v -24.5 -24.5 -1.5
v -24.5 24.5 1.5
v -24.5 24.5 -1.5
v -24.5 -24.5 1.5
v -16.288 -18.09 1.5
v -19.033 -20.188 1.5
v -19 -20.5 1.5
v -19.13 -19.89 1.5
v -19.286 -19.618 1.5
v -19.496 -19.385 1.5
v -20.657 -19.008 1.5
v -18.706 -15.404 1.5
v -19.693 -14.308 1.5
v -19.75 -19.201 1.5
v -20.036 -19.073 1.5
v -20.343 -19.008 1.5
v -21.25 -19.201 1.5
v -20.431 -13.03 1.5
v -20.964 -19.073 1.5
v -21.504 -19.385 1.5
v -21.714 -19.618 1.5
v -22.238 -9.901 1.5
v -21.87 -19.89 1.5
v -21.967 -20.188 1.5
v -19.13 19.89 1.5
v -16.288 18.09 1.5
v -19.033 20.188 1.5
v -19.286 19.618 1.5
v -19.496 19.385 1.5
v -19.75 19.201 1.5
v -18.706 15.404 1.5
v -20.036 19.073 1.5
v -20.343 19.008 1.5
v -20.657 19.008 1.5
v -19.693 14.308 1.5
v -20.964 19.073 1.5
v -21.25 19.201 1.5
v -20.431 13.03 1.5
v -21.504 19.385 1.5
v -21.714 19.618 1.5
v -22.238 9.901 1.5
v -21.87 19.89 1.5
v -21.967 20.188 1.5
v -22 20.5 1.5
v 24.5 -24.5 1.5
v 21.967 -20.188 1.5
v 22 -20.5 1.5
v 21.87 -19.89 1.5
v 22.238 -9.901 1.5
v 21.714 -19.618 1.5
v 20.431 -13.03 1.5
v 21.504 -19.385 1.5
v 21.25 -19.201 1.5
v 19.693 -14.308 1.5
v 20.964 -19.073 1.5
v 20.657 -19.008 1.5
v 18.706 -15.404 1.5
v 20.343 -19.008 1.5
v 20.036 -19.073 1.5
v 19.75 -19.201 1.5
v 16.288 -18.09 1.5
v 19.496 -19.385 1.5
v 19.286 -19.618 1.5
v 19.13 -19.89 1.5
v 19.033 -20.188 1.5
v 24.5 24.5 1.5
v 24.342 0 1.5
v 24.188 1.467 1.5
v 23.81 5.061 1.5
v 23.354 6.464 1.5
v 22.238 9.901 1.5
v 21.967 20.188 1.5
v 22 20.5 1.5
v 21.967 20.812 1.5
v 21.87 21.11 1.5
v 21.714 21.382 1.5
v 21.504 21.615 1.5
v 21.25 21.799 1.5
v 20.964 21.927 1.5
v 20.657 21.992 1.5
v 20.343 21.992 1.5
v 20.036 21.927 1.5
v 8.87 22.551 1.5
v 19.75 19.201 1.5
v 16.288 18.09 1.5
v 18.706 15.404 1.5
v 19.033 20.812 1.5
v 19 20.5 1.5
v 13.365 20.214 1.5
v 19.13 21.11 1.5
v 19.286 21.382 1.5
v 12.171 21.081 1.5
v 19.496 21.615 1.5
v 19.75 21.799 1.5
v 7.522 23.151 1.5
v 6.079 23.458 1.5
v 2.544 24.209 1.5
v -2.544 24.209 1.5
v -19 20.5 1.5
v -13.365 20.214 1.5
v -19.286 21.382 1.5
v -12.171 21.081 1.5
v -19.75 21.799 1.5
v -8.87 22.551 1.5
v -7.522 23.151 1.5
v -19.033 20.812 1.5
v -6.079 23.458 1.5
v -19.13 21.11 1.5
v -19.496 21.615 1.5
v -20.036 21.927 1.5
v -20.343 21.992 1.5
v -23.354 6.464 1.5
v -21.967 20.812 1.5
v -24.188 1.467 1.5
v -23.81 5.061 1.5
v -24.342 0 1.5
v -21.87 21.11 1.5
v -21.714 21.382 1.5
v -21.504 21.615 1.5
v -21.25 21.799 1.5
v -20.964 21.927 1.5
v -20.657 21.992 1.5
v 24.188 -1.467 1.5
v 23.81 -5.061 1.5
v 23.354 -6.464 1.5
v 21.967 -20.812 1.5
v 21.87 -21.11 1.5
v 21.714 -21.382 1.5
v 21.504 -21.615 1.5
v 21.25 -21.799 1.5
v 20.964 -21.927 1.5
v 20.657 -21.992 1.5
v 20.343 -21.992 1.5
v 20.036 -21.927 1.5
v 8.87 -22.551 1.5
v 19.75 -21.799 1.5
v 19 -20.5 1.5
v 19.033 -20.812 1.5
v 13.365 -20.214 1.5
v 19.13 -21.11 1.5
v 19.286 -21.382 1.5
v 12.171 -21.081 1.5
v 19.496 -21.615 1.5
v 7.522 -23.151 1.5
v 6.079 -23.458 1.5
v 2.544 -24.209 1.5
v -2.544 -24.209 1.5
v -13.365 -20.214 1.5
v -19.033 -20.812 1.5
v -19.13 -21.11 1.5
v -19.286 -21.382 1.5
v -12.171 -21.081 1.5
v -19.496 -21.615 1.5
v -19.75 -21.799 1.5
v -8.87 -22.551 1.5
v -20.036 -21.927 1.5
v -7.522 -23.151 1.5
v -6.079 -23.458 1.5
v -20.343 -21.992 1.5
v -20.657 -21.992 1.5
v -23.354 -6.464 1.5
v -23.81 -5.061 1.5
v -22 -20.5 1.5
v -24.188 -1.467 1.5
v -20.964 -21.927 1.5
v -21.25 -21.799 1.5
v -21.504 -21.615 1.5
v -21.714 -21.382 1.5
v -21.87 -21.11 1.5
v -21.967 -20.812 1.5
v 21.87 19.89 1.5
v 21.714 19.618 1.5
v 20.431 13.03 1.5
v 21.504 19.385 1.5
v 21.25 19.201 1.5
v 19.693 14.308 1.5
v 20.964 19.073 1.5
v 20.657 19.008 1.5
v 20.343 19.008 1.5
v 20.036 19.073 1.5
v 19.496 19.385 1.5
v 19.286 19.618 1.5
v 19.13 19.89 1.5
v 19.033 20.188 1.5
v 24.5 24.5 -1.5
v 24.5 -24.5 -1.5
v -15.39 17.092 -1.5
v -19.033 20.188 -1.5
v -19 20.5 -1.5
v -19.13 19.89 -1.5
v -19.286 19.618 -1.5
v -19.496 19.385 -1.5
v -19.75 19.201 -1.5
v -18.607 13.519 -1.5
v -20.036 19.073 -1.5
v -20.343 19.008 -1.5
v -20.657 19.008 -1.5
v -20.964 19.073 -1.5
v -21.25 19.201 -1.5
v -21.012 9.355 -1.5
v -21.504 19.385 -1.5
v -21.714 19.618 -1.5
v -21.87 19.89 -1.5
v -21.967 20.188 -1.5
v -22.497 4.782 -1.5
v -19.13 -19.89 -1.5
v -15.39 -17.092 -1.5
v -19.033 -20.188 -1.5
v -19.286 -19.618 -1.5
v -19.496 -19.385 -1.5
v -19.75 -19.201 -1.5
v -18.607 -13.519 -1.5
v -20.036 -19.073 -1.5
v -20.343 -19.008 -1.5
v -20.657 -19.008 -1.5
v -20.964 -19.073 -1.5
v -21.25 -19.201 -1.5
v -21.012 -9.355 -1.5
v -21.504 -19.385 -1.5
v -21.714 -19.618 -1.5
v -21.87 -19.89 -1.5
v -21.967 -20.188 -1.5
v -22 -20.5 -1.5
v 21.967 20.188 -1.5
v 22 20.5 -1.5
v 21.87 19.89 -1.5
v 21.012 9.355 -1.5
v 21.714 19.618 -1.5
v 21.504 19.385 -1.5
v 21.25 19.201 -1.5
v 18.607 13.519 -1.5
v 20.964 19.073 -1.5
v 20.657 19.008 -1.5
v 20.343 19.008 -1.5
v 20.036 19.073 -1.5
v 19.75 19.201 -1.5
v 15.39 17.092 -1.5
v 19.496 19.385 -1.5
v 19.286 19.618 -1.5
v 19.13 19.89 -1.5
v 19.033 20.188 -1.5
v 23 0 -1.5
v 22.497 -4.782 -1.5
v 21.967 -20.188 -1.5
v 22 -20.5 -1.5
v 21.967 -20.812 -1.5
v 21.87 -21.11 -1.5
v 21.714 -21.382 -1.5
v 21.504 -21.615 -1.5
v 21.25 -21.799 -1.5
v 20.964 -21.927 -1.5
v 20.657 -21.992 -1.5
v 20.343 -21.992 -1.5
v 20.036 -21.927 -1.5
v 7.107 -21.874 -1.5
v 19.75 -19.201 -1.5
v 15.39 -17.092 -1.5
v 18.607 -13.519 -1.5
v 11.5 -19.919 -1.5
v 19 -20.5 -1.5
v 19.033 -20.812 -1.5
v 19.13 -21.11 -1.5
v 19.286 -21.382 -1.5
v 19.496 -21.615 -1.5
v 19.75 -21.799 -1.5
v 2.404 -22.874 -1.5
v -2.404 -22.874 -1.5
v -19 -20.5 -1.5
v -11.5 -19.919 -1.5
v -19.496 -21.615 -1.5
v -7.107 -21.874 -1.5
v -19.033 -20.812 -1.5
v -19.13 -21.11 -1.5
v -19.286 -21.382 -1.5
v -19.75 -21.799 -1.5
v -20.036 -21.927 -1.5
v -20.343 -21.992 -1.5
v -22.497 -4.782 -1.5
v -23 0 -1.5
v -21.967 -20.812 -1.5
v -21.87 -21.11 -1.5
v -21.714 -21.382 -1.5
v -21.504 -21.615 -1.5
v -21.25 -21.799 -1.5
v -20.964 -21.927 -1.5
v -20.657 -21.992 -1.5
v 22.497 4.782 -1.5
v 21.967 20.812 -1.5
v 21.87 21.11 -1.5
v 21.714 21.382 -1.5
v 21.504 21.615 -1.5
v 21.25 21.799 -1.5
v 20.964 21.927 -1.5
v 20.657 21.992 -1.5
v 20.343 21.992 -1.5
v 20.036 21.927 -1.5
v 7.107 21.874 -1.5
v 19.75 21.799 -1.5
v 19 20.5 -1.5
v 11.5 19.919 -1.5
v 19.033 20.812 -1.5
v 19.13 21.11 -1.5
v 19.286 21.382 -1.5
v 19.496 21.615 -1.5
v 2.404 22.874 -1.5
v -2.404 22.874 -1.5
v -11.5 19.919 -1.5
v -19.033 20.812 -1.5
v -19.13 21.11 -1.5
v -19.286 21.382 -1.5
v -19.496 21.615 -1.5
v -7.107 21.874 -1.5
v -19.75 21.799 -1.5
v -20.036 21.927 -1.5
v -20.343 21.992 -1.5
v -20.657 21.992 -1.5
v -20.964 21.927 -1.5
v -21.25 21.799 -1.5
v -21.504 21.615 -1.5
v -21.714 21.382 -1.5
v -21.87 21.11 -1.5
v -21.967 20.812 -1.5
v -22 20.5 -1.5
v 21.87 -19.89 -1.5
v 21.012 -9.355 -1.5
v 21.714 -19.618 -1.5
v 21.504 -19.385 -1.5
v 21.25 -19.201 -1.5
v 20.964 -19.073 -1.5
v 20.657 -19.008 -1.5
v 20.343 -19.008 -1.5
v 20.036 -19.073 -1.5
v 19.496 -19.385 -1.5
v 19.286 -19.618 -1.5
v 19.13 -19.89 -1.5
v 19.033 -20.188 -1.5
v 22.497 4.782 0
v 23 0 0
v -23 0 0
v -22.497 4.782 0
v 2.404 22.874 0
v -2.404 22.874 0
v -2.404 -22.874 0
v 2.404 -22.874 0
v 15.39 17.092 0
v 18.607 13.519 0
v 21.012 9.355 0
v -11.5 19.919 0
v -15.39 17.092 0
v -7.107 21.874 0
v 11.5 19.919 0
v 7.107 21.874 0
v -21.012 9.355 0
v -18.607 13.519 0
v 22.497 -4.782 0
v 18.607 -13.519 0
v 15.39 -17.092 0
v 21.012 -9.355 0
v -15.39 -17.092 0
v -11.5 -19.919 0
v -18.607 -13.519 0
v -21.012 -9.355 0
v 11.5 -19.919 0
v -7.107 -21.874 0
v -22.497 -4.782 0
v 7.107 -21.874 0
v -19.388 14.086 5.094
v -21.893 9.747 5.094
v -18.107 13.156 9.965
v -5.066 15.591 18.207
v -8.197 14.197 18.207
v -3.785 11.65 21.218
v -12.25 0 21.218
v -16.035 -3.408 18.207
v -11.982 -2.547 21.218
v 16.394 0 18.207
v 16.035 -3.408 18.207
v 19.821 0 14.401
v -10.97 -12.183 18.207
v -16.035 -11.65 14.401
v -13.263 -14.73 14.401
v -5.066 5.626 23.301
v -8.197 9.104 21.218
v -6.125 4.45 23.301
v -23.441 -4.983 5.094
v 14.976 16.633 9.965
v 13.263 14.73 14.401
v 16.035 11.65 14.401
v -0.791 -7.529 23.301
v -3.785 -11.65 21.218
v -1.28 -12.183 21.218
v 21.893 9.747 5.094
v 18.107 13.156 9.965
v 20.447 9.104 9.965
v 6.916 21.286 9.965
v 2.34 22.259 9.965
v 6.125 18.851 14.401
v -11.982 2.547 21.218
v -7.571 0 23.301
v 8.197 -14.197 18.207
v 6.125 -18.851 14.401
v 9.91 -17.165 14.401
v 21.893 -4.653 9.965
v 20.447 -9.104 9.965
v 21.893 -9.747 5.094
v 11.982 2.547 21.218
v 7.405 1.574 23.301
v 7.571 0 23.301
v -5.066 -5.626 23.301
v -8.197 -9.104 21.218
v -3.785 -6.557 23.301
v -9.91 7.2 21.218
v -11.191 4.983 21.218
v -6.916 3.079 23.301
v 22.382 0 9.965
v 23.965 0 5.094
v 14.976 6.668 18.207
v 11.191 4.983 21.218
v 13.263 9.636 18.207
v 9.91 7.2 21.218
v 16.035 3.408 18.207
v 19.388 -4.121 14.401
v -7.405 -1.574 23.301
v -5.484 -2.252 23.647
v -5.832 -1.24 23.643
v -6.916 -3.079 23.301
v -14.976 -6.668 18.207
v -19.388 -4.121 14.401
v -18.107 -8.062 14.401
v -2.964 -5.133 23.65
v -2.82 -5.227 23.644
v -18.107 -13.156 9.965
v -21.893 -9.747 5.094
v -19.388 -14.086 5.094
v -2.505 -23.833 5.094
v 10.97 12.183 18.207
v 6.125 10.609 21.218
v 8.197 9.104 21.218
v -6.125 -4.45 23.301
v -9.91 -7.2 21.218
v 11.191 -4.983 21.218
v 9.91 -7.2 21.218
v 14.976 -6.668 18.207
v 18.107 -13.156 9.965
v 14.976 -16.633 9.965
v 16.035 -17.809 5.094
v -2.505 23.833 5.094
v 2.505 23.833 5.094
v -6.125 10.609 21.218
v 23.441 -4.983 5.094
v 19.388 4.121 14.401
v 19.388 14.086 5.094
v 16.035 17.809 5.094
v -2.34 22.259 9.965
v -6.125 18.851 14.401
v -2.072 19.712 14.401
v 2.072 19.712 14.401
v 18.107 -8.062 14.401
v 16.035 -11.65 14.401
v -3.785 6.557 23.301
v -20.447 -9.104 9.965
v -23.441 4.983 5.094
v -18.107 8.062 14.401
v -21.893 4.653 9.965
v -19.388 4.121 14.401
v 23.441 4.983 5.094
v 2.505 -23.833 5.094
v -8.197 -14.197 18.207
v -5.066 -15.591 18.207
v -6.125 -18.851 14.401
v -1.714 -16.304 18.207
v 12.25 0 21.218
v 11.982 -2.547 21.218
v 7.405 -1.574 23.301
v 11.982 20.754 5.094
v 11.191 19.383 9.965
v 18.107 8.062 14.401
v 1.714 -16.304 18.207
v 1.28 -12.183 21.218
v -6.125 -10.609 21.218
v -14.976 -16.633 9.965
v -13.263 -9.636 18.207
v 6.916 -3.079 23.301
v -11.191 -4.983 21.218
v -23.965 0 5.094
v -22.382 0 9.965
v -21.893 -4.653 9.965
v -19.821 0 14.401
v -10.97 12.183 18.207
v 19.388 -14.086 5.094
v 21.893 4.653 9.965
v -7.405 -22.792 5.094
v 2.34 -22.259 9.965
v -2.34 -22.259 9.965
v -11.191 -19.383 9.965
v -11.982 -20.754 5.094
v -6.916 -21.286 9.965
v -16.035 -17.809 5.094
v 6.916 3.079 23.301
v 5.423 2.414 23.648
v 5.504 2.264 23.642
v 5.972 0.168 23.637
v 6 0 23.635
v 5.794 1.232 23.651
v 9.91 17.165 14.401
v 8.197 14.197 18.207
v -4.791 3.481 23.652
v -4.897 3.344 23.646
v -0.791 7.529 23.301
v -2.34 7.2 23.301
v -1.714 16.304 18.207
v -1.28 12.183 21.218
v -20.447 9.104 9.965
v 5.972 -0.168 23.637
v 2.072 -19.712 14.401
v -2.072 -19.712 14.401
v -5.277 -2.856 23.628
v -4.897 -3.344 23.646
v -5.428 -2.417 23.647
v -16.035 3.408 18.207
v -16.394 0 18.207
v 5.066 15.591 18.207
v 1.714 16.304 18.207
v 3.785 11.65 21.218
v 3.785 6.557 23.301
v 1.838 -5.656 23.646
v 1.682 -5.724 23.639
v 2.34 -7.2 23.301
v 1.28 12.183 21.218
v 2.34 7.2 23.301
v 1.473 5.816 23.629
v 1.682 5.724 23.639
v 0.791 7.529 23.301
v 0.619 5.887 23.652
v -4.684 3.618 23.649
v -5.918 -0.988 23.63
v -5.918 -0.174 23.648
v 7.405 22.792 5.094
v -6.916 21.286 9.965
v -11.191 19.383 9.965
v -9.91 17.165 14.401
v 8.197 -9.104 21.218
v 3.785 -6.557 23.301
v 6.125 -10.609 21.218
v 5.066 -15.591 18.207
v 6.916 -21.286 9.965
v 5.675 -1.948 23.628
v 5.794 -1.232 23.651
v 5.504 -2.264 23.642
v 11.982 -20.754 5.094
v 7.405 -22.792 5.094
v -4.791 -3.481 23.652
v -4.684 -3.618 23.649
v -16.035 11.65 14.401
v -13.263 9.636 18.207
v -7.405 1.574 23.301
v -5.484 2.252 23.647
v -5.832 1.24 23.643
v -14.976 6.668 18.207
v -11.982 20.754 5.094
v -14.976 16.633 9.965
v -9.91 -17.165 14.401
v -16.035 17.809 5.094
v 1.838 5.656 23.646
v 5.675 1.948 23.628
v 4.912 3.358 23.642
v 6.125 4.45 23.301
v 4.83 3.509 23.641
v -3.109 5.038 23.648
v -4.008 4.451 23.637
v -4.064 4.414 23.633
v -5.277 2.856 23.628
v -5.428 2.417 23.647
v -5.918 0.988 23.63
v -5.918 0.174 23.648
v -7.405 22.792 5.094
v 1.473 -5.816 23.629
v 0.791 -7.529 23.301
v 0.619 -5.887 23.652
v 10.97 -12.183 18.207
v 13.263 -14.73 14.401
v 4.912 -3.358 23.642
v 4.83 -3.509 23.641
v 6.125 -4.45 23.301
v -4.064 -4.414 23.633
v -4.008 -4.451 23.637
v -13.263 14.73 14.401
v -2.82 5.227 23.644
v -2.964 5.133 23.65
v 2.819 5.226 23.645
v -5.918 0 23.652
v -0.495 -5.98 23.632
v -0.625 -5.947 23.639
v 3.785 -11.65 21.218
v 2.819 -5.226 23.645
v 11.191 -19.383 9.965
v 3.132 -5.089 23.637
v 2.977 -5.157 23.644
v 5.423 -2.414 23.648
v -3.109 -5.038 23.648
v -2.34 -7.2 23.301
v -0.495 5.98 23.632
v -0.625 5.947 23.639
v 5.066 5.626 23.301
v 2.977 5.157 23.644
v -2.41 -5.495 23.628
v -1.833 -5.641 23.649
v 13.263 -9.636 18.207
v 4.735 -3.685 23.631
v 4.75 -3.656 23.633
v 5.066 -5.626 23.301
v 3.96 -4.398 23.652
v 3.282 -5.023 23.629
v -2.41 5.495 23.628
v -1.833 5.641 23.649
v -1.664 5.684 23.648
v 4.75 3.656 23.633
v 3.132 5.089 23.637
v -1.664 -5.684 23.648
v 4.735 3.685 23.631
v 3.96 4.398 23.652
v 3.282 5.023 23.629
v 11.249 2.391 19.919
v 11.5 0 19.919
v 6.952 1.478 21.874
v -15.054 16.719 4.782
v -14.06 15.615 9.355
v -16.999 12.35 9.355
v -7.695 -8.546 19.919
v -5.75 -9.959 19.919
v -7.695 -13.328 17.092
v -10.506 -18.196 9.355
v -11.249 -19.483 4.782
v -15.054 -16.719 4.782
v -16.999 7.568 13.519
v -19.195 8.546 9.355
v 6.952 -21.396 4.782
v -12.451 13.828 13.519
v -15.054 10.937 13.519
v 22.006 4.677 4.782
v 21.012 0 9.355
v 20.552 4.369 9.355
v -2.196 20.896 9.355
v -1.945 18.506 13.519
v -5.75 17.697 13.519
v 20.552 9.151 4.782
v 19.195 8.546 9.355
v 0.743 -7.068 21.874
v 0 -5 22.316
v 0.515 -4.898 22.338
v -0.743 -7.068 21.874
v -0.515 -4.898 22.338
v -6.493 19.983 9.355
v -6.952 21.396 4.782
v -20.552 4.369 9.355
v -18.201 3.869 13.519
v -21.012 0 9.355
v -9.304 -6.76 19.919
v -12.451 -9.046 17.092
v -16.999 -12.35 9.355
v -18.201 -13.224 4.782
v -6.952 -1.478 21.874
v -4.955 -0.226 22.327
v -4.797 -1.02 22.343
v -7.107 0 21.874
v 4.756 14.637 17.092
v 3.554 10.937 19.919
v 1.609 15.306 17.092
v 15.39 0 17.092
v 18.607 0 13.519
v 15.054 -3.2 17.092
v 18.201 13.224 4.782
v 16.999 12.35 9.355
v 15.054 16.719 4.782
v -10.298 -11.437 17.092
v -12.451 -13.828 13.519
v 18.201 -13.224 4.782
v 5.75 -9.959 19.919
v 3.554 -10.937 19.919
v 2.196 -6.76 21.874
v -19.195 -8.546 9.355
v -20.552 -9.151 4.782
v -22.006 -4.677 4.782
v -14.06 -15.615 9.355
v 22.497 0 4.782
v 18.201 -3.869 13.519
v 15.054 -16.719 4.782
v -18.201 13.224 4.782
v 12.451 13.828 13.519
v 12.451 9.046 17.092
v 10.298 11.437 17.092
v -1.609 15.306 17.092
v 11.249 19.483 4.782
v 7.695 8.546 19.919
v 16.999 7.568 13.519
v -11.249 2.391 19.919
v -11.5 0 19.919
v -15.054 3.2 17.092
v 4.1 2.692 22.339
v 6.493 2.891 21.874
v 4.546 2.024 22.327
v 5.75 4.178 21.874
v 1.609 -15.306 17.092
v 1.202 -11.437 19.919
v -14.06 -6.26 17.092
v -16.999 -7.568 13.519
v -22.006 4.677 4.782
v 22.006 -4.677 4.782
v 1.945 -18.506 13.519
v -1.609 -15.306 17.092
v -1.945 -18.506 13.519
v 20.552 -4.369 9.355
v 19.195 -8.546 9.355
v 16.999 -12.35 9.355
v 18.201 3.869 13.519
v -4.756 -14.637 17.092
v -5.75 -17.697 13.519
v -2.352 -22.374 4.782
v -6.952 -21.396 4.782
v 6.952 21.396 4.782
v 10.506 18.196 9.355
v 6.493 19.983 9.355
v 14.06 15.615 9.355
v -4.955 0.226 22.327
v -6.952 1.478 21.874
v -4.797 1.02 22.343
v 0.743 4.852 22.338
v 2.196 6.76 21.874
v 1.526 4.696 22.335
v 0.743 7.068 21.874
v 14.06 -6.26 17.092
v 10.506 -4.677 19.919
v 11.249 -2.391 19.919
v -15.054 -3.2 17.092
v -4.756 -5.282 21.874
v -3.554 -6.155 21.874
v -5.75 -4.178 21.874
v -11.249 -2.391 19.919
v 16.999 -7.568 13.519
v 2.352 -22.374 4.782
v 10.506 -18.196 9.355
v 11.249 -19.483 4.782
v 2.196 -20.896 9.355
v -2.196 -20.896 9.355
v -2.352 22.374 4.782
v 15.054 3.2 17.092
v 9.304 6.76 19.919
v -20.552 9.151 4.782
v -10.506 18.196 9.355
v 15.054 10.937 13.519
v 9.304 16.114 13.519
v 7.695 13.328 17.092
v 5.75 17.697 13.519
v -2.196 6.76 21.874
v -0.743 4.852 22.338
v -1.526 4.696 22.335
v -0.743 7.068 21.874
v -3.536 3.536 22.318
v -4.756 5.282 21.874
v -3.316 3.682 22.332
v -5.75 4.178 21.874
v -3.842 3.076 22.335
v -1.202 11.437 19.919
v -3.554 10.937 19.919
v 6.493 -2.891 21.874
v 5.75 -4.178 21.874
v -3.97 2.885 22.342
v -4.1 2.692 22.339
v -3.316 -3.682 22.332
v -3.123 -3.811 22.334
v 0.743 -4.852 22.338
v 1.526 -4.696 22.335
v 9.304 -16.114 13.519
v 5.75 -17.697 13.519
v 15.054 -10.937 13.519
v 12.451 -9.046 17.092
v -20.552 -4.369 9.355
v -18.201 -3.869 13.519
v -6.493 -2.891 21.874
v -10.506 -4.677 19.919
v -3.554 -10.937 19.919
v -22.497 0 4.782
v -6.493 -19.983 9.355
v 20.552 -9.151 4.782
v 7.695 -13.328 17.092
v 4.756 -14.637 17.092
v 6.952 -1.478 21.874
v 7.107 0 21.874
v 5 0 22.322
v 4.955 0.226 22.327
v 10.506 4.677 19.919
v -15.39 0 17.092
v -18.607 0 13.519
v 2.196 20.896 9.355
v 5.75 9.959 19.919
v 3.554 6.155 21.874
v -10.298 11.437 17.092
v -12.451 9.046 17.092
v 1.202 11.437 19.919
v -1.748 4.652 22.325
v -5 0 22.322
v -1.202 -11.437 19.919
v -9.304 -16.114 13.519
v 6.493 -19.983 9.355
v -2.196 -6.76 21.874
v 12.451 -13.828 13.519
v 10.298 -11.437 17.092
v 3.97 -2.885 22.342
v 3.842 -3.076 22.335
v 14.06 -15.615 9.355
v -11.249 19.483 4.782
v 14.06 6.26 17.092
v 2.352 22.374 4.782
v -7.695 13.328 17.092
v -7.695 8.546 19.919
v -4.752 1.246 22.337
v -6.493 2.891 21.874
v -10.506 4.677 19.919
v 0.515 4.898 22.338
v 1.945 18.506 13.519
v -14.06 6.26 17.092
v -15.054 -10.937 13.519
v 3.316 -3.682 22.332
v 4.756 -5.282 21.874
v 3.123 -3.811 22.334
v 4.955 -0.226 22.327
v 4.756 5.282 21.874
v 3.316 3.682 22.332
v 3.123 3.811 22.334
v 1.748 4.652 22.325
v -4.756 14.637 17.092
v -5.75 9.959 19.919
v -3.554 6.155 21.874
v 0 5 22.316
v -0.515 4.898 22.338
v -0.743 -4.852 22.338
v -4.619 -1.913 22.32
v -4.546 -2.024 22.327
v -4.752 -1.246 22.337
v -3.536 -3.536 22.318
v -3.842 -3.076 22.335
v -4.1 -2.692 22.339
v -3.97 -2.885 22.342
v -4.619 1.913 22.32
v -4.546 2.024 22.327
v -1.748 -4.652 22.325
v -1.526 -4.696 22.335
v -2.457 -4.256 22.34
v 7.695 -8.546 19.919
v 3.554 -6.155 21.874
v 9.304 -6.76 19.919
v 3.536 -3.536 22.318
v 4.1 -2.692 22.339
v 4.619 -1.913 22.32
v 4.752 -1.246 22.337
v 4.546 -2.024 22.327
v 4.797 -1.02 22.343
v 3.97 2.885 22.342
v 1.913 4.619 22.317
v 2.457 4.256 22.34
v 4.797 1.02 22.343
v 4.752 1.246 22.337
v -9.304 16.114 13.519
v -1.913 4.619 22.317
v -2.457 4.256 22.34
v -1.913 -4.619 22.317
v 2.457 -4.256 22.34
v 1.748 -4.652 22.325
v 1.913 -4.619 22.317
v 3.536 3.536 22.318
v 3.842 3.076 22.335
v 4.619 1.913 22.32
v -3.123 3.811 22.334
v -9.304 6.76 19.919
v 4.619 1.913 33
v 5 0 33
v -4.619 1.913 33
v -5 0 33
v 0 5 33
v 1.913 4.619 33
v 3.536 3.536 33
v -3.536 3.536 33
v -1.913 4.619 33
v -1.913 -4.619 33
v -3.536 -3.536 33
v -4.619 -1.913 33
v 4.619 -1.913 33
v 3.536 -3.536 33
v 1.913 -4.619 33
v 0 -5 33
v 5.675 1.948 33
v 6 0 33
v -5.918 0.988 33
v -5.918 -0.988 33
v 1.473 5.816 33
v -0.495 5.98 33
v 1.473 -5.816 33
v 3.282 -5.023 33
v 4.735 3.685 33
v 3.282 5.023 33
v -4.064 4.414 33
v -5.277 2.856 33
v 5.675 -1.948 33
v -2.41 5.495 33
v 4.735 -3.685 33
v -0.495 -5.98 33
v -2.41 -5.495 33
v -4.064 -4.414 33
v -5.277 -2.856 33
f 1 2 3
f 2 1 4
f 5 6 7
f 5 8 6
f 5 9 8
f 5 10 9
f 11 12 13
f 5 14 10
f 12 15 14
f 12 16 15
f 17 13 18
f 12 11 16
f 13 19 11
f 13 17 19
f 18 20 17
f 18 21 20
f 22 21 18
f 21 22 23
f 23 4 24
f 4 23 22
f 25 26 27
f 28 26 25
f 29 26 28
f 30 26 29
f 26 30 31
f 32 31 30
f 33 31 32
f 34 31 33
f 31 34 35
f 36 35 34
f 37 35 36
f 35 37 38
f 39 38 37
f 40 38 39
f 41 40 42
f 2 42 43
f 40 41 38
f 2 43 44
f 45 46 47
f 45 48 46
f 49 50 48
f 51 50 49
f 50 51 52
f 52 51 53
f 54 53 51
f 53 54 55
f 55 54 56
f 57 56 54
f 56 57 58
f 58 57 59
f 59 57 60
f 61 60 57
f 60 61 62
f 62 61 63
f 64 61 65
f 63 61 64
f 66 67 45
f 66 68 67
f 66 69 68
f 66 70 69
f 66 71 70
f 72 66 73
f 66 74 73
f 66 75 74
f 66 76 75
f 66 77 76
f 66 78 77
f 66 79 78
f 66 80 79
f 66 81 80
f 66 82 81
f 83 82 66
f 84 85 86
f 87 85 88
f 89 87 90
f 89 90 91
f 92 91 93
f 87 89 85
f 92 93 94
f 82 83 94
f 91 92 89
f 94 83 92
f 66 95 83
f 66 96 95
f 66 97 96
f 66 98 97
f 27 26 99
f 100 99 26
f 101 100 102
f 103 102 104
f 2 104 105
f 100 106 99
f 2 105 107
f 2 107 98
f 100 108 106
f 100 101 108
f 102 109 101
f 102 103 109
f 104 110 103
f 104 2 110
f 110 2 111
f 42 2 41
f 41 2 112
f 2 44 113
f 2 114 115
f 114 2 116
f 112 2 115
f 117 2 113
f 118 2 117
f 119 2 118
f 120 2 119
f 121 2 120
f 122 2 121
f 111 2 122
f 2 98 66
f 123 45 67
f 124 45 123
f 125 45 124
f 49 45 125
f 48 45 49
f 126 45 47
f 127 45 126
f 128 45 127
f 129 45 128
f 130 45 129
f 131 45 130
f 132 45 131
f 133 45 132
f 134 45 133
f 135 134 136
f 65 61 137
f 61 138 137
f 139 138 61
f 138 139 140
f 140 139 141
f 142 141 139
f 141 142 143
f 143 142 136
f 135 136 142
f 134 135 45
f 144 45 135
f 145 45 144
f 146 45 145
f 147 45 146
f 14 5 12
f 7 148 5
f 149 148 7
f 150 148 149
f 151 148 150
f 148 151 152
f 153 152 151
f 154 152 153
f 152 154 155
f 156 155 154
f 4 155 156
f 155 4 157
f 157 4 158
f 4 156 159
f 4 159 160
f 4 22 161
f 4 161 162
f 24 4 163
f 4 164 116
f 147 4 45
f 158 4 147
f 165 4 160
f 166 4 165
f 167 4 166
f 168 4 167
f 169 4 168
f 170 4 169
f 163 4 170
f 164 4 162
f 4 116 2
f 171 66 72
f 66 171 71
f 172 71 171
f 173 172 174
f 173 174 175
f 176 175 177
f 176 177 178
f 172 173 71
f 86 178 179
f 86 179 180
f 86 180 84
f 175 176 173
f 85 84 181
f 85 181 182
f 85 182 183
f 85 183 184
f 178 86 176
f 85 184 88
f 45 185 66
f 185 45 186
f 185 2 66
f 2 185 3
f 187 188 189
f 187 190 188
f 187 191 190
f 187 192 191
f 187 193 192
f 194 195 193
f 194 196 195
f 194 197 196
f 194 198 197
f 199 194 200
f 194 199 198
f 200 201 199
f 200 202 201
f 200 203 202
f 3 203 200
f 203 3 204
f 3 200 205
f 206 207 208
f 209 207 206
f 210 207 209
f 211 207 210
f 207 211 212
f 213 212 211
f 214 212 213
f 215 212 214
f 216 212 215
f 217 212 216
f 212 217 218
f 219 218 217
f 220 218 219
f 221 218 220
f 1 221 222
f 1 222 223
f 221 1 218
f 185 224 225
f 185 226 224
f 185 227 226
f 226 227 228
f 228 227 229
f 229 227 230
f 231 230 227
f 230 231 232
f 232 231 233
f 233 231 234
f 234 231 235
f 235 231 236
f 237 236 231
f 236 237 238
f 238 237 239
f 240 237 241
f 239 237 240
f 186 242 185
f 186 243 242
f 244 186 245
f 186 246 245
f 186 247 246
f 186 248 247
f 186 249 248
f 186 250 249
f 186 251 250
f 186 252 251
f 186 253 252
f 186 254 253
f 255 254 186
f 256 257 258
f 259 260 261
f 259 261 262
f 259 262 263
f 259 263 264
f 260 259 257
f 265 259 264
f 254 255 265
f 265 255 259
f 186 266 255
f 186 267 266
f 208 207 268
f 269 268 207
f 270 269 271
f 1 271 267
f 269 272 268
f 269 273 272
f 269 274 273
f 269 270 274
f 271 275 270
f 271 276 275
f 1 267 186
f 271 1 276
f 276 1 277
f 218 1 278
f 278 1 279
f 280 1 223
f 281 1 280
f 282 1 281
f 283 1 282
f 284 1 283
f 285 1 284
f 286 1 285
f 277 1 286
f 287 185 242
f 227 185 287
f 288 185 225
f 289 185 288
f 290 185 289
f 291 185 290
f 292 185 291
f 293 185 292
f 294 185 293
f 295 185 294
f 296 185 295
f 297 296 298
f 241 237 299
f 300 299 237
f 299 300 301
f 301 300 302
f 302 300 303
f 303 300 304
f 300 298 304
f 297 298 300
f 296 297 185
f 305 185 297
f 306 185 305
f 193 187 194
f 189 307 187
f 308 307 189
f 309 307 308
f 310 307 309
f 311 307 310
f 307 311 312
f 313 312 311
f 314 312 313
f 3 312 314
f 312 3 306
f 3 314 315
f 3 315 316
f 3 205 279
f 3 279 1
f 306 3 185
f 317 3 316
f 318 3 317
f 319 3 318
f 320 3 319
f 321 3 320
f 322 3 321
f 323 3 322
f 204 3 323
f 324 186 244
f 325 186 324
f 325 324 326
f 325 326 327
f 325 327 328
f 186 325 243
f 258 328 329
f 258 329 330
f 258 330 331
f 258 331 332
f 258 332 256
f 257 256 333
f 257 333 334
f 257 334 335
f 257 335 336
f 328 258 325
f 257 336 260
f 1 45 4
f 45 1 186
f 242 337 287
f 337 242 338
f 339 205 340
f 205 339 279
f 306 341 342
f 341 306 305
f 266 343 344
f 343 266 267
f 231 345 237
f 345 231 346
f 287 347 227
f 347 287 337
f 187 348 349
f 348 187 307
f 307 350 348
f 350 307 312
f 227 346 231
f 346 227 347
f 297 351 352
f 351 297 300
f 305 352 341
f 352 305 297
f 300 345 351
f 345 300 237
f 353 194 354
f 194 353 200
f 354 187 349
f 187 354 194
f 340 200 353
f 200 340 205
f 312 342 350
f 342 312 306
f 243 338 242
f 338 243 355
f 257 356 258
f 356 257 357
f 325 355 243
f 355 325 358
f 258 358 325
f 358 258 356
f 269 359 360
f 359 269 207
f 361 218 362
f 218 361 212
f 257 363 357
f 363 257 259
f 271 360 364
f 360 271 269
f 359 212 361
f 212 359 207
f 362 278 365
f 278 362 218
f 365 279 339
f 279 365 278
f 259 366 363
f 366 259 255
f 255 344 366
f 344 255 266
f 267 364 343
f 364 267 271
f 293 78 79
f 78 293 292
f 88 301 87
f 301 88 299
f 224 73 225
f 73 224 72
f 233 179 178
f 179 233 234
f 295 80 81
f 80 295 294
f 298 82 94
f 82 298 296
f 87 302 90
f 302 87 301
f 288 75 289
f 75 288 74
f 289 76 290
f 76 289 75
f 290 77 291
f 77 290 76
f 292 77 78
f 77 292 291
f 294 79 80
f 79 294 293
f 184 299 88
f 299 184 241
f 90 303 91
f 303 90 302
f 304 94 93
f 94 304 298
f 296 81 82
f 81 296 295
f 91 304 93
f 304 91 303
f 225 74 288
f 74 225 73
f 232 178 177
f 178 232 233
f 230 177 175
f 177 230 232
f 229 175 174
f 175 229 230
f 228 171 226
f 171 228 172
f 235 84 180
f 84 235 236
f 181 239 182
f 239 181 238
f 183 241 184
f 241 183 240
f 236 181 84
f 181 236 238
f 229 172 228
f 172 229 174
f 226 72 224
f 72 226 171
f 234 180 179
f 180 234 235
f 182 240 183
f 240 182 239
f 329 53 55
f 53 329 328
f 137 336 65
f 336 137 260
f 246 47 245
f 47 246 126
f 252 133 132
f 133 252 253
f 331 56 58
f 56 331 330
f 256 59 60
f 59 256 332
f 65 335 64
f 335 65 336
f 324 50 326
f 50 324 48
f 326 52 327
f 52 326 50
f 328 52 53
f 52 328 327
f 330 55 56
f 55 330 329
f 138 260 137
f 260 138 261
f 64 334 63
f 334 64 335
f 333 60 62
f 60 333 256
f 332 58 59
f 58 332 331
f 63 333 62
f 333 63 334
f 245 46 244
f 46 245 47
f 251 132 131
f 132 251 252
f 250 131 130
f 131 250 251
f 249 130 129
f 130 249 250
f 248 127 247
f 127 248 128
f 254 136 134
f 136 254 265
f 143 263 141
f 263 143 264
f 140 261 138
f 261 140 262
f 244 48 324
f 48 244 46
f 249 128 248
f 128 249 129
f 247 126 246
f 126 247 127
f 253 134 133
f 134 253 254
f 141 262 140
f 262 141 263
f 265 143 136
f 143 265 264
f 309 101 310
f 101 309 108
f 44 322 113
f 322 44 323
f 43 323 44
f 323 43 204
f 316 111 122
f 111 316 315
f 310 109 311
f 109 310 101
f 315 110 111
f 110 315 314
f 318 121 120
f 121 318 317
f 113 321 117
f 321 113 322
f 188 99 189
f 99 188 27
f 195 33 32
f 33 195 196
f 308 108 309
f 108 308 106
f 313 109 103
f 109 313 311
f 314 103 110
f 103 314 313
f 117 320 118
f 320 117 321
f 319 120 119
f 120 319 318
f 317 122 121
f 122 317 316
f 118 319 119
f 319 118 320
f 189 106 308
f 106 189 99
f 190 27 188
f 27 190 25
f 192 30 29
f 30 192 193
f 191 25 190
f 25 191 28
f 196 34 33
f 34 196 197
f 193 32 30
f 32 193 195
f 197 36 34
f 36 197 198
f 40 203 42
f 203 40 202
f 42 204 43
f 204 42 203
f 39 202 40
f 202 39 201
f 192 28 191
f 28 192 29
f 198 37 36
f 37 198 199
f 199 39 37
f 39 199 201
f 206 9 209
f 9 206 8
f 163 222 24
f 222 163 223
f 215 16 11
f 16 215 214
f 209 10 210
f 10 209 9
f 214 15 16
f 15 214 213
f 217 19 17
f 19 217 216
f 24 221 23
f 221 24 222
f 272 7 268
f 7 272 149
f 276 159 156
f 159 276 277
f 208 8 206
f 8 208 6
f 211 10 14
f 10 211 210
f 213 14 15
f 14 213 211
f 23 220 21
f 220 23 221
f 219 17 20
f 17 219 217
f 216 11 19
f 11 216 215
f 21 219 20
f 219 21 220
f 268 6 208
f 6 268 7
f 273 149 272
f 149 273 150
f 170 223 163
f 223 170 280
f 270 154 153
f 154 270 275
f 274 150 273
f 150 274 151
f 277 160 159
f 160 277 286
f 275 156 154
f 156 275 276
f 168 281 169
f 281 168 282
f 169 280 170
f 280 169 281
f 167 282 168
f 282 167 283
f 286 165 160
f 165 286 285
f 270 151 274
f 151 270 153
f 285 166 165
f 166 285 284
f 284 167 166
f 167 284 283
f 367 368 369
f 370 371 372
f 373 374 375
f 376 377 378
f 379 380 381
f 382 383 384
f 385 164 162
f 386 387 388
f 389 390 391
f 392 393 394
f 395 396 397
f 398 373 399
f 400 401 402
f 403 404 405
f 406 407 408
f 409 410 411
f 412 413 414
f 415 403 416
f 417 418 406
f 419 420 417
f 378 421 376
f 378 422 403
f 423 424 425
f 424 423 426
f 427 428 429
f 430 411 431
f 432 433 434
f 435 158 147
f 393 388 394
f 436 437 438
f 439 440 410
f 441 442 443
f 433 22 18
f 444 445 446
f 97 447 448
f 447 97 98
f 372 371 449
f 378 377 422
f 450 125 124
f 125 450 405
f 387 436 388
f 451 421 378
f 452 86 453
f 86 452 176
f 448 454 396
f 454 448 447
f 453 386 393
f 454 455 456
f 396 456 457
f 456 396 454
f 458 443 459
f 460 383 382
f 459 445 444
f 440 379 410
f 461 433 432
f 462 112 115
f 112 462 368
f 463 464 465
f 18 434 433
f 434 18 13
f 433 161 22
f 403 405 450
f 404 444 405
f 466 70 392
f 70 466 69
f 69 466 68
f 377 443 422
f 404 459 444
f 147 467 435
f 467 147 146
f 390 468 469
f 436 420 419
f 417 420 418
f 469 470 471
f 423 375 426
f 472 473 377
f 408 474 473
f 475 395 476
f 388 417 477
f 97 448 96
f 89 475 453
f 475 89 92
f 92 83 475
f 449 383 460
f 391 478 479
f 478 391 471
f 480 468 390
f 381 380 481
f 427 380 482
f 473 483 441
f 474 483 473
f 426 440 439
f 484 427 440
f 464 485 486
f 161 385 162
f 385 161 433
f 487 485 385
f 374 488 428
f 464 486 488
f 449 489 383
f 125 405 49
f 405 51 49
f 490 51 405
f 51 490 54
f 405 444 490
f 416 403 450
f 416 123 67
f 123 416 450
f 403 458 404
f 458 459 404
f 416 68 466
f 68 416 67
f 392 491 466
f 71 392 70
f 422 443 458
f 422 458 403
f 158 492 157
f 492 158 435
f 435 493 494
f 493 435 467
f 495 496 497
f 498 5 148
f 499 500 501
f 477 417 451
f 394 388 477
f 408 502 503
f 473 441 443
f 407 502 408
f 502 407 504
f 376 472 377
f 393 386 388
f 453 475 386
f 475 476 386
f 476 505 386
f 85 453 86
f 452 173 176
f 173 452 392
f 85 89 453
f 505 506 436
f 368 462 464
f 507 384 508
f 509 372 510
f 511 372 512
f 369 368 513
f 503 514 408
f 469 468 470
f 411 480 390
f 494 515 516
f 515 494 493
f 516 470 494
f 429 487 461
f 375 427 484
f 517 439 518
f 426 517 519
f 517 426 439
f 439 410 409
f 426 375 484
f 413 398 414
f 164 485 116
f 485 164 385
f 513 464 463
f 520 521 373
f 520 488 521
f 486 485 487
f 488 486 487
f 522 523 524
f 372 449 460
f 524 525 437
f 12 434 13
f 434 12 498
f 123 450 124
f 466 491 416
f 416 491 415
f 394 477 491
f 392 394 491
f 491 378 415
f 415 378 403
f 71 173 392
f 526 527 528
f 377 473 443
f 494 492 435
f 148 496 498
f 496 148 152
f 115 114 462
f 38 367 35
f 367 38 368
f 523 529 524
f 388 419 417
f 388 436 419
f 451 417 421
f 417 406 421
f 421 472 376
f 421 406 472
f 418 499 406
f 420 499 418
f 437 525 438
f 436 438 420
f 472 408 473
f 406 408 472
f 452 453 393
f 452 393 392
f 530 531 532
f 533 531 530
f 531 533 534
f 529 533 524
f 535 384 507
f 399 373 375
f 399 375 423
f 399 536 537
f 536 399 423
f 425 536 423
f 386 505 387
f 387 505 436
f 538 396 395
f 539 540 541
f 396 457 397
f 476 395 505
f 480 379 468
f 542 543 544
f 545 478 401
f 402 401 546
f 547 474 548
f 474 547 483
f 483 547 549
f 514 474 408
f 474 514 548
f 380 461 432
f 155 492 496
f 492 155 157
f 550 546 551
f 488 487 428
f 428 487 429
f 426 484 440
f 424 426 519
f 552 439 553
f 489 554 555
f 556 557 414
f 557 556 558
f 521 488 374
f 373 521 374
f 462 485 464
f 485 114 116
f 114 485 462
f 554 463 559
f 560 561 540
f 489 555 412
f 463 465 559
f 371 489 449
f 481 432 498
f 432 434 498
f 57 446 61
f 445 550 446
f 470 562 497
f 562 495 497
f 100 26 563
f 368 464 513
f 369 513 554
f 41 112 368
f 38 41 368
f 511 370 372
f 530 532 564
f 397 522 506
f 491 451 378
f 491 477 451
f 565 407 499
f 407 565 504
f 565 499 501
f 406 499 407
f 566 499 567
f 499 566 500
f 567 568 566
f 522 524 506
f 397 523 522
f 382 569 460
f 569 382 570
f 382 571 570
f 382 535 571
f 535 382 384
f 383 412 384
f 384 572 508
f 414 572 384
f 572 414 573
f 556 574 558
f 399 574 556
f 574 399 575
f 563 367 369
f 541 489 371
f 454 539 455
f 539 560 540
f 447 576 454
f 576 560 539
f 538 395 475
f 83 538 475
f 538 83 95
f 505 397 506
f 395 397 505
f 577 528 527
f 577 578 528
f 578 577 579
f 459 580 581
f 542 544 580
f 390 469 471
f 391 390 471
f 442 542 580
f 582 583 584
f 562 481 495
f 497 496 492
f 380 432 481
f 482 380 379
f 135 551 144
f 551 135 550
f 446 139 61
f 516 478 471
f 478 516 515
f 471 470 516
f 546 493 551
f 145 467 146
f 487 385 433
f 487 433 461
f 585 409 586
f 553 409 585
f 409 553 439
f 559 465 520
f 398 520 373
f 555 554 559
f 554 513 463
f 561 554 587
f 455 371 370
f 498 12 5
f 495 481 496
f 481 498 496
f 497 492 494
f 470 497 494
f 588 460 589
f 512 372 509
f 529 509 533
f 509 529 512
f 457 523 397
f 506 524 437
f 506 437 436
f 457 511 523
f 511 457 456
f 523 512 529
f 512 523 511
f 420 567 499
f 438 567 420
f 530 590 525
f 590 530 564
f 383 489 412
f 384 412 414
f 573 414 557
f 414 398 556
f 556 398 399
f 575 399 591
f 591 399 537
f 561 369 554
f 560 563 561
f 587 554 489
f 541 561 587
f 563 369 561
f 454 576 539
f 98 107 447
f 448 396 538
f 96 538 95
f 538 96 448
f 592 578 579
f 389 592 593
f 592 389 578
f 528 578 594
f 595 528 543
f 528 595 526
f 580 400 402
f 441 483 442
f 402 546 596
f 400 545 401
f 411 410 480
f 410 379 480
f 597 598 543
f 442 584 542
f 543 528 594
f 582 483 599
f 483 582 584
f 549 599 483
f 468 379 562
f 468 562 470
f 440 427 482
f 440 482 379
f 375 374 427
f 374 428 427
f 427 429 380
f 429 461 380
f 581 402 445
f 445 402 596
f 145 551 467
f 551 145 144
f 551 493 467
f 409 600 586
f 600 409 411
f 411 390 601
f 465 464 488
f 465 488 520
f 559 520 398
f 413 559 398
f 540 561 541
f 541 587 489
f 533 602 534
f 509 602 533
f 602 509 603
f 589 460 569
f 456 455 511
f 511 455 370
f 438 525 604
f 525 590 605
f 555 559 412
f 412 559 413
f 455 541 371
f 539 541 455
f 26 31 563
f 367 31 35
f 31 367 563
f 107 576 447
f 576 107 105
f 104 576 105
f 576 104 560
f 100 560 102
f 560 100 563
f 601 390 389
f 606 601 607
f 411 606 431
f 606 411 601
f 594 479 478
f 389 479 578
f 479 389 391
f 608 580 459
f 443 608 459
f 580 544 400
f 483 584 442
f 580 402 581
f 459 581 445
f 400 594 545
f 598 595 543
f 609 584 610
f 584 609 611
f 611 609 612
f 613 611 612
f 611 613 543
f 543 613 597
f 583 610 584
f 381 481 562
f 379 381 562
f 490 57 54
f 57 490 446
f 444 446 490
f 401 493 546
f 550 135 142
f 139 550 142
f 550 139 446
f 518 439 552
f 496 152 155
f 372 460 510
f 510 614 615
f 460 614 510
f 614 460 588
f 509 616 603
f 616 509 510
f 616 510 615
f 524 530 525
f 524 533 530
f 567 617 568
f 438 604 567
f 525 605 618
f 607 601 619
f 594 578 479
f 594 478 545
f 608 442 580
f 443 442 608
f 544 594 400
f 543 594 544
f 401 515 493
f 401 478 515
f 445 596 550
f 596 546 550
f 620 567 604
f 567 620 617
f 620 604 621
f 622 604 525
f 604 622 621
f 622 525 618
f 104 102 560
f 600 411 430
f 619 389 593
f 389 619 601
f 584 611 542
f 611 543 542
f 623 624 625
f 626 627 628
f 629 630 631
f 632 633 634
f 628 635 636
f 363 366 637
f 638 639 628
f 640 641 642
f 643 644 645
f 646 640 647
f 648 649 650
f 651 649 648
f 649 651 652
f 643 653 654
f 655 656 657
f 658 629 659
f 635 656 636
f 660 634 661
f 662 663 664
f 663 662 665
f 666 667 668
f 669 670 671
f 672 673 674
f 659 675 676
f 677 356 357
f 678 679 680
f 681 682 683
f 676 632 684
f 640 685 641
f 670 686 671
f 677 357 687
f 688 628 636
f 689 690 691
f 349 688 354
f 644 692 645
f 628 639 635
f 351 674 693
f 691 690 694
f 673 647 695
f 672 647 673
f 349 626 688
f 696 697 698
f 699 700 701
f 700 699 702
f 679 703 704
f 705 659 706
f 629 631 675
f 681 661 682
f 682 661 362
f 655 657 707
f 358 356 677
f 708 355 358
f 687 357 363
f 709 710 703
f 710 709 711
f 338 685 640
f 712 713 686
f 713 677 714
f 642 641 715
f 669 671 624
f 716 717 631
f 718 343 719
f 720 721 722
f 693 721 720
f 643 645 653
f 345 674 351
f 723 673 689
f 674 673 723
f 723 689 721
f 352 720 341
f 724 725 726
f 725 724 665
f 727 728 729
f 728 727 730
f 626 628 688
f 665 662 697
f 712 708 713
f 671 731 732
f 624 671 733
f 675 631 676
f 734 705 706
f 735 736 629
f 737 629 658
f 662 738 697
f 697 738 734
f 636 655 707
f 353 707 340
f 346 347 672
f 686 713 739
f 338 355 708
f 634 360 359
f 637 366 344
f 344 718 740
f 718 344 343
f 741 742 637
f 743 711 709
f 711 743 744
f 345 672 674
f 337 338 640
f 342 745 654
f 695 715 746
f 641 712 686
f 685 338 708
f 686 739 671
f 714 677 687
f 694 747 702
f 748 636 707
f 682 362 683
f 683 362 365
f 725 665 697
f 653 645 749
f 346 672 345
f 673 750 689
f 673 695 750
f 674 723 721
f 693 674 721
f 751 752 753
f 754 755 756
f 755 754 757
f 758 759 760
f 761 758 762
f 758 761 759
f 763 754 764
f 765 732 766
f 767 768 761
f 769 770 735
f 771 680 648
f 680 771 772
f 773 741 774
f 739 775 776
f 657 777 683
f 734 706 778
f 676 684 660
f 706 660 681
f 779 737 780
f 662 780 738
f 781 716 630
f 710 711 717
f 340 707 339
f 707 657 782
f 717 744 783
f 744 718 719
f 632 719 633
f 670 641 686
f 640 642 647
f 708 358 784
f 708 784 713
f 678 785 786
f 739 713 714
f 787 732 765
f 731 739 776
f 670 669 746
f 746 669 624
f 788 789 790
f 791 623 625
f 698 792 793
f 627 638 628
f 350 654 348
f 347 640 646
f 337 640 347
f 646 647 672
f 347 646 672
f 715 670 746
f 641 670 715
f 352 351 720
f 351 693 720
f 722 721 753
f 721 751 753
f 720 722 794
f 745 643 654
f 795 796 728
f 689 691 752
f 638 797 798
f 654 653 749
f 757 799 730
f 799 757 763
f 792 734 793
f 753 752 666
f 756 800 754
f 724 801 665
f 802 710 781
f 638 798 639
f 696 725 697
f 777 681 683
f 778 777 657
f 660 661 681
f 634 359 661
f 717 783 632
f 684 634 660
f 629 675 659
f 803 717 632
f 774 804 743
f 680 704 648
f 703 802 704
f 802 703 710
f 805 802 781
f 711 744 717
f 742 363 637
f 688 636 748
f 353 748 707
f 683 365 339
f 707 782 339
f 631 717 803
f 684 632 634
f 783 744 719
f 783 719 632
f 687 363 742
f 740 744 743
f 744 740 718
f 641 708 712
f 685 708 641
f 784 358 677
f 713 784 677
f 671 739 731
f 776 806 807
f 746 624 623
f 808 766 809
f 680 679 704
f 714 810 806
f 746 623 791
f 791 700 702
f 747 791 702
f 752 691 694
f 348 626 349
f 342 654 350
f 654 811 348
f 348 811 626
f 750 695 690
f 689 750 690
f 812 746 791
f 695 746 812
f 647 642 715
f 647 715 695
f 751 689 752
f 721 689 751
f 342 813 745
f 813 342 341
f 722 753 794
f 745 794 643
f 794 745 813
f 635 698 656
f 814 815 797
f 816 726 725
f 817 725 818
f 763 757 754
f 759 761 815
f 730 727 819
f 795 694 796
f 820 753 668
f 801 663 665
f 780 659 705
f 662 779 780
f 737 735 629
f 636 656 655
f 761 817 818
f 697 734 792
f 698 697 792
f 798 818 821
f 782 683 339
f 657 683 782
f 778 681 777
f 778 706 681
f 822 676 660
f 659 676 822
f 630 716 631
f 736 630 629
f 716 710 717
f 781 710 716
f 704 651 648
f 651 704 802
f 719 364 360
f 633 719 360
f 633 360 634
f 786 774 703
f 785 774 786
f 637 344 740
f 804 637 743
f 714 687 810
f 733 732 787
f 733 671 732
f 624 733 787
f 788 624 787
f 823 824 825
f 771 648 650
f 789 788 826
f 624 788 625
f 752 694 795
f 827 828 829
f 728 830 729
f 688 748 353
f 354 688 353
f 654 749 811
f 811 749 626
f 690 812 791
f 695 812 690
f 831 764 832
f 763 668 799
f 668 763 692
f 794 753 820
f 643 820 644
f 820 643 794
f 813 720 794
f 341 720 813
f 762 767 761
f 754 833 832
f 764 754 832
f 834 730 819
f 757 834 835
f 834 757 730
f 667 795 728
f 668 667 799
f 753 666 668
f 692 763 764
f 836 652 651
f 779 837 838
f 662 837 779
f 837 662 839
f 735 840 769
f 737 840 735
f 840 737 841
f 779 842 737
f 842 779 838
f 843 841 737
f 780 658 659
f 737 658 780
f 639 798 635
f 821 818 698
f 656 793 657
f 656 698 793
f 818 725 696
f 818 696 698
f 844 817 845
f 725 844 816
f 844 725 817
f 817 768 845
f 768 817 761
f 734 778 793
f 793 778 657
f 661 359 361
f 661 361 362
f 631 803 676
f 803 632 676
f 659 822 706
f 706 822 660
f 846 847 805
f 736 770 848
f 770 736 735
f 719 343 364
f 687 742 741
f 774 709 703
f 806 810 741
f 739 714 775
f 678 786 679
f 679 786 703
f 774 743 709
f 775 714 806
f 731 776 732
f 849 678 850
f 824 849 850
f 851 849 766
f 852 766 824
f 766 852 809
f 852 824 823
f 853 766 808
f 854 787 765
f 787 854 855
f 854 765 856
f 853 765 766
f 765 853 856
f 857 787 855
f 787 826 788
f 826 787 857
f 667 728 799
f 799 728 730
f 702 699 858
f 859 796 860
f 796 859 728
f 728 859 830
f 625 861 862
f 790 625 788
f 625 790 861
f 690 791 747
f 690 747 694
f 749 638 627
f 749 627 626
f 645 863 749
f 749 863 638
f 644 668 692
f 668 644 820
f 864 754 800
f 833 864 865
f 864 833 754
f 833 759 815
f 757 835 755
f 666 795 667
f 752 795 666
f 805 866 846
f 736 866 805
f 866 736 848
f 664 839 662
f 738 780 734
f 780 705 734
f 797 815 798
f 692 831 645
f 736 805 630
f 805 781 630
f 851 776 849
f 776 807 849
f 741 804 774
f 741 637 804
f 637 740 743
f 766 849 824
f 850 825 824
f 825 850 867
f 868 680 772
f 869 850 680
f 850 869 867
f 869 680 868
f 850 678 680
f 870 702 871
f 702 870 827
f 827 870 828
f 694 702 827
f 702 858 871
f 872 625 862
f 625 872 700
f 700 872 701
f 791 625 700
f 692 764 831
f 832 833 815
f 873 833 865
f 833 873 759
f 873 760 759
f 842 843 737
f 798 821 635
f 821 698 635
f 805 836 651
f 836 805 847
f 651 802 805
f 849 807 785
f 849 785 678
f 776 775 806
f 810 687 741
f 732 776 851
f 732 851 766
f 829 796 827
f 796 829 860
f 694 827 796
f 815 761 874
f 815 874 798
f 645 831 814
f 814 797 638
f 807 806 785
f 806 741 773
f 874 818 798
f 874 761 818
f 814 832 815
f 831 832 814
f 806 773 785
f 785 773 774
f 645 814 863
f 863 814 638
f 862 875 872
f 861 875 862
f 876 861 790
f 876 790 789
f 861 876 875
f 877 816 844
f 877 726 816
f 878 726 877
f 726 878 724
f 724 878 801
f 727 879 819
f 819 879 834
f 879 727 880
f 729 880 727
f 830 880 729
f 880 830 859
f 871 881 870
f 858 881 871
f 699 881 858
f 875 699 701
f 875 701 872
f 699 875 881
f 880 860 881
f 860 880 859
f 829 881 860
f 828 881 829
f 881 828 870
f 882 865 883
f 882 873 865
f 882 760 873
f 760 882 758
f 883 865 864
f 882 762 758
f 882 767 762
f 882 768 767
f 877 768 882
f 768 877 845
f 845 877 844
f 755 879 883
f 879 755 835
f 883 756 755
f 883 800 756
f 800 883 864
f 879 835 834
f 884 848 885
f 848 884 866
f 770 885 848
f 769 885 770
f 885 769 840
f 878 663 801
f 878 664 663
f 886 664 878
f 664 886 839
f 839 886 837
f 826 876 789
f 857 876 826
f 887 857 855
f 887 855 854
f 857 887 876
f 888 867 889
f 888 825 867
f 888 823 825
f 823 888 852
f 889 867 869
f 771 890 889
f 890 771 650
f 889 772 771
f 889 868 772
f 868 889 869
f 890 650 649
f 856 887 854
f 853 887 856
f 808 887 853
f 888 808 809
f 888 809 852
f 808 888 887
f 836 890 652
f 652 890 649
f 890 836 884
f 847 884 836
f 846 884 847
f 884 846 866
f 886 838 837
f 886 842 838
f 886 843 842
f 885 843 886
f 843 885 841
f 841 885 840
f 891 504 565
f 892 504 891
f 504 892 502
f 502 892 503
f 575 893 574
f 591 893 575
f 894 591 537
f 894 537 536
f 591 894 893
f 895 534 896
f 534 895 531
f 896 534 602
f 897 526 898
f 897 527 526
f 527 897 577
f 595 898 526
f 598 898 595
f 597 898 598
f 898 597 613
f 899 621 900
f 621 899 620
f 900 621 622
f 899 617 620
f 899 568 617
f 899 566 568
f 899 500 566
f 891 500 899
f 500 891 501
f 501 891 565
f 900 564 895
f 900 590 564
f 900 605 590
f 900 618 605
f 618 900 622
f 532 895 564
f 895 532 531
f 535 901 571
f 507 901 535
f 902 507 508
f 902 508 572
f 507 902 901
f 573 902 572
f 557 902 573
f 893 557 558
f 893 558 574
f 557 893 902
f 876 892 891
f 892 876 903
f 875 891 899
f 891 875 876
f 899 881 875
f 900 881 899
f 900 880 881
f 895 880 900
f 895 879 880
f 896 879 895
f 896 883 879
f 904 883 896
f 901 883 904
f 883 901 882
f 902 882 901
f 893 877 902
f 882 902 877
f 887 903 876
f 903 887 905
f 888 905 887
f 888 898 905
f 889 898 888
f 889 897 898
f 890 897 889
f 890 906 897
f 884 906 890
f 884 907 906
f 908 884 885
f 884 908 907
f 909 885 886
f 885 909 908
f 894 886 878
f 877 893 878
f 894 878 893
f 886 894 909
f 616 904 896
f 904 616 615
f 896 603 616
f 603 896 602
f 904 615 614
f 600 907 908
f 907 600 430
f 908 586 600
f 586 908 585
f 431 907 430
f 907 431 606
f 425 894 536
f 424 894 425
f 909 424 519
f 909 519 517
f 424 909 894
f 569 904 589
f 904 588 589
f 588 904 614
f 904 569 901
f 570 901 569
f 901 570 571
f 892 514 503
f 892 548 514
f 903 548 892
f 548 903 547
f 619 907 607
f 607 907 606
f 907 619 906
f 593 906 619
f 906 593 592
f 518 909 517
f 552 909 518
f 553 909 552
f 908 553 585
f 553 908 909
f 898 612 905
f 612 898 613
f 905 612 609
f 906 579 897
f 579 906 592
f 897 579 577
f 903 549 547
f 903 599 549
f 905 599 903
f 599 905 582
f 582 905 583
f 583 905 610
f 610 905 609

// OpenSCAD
// Lüftertrichter

trichter = true;
kuppel = true;
roehre = false;

if (trichter) {
    base();
    if (kuppel) kuppel();
    if (roehre) roehre();
}

module base() {
    difference() {
        cube([49,49,3],center=true);
        cylinder(d=46,h=5,center=true);
        
        translate([20.5,20.5,0])
        cylinder(d=3, h=5, center=true, $fn=30);
        translate([20.5,-20.5,0])
        cylinder(d=3, h=5, center=true, $fn=30);
        translate([-20.5,20.5,0])
        cylinder(d=3, h=5, center=true, $fn=30);
        translate([-20.5,-20.5,0])
        cylinder(d=3, h=5, center=true, $fn=30);
    }
}

module kuppel() {
    difference() {
        sphere(d=49);
        translate([0,0,-25])
        cube([50,50,50], center=true);
        sphere(d=46);
        cylinder(d=10,h=100, center=true);
    }
    
    translate([0,0,28])
    difference() {
        cylinder(d=12,h=10, center=true);
        cylinder(d=10,h=11, center=true);
    }

}

module roehre() {
    difference() {
        cylinder(d1=49, d2= 10, h=49/2, center=false);
        cylinder(d1=46, d2= 7, h=49/2, center=false);
    }    
}
